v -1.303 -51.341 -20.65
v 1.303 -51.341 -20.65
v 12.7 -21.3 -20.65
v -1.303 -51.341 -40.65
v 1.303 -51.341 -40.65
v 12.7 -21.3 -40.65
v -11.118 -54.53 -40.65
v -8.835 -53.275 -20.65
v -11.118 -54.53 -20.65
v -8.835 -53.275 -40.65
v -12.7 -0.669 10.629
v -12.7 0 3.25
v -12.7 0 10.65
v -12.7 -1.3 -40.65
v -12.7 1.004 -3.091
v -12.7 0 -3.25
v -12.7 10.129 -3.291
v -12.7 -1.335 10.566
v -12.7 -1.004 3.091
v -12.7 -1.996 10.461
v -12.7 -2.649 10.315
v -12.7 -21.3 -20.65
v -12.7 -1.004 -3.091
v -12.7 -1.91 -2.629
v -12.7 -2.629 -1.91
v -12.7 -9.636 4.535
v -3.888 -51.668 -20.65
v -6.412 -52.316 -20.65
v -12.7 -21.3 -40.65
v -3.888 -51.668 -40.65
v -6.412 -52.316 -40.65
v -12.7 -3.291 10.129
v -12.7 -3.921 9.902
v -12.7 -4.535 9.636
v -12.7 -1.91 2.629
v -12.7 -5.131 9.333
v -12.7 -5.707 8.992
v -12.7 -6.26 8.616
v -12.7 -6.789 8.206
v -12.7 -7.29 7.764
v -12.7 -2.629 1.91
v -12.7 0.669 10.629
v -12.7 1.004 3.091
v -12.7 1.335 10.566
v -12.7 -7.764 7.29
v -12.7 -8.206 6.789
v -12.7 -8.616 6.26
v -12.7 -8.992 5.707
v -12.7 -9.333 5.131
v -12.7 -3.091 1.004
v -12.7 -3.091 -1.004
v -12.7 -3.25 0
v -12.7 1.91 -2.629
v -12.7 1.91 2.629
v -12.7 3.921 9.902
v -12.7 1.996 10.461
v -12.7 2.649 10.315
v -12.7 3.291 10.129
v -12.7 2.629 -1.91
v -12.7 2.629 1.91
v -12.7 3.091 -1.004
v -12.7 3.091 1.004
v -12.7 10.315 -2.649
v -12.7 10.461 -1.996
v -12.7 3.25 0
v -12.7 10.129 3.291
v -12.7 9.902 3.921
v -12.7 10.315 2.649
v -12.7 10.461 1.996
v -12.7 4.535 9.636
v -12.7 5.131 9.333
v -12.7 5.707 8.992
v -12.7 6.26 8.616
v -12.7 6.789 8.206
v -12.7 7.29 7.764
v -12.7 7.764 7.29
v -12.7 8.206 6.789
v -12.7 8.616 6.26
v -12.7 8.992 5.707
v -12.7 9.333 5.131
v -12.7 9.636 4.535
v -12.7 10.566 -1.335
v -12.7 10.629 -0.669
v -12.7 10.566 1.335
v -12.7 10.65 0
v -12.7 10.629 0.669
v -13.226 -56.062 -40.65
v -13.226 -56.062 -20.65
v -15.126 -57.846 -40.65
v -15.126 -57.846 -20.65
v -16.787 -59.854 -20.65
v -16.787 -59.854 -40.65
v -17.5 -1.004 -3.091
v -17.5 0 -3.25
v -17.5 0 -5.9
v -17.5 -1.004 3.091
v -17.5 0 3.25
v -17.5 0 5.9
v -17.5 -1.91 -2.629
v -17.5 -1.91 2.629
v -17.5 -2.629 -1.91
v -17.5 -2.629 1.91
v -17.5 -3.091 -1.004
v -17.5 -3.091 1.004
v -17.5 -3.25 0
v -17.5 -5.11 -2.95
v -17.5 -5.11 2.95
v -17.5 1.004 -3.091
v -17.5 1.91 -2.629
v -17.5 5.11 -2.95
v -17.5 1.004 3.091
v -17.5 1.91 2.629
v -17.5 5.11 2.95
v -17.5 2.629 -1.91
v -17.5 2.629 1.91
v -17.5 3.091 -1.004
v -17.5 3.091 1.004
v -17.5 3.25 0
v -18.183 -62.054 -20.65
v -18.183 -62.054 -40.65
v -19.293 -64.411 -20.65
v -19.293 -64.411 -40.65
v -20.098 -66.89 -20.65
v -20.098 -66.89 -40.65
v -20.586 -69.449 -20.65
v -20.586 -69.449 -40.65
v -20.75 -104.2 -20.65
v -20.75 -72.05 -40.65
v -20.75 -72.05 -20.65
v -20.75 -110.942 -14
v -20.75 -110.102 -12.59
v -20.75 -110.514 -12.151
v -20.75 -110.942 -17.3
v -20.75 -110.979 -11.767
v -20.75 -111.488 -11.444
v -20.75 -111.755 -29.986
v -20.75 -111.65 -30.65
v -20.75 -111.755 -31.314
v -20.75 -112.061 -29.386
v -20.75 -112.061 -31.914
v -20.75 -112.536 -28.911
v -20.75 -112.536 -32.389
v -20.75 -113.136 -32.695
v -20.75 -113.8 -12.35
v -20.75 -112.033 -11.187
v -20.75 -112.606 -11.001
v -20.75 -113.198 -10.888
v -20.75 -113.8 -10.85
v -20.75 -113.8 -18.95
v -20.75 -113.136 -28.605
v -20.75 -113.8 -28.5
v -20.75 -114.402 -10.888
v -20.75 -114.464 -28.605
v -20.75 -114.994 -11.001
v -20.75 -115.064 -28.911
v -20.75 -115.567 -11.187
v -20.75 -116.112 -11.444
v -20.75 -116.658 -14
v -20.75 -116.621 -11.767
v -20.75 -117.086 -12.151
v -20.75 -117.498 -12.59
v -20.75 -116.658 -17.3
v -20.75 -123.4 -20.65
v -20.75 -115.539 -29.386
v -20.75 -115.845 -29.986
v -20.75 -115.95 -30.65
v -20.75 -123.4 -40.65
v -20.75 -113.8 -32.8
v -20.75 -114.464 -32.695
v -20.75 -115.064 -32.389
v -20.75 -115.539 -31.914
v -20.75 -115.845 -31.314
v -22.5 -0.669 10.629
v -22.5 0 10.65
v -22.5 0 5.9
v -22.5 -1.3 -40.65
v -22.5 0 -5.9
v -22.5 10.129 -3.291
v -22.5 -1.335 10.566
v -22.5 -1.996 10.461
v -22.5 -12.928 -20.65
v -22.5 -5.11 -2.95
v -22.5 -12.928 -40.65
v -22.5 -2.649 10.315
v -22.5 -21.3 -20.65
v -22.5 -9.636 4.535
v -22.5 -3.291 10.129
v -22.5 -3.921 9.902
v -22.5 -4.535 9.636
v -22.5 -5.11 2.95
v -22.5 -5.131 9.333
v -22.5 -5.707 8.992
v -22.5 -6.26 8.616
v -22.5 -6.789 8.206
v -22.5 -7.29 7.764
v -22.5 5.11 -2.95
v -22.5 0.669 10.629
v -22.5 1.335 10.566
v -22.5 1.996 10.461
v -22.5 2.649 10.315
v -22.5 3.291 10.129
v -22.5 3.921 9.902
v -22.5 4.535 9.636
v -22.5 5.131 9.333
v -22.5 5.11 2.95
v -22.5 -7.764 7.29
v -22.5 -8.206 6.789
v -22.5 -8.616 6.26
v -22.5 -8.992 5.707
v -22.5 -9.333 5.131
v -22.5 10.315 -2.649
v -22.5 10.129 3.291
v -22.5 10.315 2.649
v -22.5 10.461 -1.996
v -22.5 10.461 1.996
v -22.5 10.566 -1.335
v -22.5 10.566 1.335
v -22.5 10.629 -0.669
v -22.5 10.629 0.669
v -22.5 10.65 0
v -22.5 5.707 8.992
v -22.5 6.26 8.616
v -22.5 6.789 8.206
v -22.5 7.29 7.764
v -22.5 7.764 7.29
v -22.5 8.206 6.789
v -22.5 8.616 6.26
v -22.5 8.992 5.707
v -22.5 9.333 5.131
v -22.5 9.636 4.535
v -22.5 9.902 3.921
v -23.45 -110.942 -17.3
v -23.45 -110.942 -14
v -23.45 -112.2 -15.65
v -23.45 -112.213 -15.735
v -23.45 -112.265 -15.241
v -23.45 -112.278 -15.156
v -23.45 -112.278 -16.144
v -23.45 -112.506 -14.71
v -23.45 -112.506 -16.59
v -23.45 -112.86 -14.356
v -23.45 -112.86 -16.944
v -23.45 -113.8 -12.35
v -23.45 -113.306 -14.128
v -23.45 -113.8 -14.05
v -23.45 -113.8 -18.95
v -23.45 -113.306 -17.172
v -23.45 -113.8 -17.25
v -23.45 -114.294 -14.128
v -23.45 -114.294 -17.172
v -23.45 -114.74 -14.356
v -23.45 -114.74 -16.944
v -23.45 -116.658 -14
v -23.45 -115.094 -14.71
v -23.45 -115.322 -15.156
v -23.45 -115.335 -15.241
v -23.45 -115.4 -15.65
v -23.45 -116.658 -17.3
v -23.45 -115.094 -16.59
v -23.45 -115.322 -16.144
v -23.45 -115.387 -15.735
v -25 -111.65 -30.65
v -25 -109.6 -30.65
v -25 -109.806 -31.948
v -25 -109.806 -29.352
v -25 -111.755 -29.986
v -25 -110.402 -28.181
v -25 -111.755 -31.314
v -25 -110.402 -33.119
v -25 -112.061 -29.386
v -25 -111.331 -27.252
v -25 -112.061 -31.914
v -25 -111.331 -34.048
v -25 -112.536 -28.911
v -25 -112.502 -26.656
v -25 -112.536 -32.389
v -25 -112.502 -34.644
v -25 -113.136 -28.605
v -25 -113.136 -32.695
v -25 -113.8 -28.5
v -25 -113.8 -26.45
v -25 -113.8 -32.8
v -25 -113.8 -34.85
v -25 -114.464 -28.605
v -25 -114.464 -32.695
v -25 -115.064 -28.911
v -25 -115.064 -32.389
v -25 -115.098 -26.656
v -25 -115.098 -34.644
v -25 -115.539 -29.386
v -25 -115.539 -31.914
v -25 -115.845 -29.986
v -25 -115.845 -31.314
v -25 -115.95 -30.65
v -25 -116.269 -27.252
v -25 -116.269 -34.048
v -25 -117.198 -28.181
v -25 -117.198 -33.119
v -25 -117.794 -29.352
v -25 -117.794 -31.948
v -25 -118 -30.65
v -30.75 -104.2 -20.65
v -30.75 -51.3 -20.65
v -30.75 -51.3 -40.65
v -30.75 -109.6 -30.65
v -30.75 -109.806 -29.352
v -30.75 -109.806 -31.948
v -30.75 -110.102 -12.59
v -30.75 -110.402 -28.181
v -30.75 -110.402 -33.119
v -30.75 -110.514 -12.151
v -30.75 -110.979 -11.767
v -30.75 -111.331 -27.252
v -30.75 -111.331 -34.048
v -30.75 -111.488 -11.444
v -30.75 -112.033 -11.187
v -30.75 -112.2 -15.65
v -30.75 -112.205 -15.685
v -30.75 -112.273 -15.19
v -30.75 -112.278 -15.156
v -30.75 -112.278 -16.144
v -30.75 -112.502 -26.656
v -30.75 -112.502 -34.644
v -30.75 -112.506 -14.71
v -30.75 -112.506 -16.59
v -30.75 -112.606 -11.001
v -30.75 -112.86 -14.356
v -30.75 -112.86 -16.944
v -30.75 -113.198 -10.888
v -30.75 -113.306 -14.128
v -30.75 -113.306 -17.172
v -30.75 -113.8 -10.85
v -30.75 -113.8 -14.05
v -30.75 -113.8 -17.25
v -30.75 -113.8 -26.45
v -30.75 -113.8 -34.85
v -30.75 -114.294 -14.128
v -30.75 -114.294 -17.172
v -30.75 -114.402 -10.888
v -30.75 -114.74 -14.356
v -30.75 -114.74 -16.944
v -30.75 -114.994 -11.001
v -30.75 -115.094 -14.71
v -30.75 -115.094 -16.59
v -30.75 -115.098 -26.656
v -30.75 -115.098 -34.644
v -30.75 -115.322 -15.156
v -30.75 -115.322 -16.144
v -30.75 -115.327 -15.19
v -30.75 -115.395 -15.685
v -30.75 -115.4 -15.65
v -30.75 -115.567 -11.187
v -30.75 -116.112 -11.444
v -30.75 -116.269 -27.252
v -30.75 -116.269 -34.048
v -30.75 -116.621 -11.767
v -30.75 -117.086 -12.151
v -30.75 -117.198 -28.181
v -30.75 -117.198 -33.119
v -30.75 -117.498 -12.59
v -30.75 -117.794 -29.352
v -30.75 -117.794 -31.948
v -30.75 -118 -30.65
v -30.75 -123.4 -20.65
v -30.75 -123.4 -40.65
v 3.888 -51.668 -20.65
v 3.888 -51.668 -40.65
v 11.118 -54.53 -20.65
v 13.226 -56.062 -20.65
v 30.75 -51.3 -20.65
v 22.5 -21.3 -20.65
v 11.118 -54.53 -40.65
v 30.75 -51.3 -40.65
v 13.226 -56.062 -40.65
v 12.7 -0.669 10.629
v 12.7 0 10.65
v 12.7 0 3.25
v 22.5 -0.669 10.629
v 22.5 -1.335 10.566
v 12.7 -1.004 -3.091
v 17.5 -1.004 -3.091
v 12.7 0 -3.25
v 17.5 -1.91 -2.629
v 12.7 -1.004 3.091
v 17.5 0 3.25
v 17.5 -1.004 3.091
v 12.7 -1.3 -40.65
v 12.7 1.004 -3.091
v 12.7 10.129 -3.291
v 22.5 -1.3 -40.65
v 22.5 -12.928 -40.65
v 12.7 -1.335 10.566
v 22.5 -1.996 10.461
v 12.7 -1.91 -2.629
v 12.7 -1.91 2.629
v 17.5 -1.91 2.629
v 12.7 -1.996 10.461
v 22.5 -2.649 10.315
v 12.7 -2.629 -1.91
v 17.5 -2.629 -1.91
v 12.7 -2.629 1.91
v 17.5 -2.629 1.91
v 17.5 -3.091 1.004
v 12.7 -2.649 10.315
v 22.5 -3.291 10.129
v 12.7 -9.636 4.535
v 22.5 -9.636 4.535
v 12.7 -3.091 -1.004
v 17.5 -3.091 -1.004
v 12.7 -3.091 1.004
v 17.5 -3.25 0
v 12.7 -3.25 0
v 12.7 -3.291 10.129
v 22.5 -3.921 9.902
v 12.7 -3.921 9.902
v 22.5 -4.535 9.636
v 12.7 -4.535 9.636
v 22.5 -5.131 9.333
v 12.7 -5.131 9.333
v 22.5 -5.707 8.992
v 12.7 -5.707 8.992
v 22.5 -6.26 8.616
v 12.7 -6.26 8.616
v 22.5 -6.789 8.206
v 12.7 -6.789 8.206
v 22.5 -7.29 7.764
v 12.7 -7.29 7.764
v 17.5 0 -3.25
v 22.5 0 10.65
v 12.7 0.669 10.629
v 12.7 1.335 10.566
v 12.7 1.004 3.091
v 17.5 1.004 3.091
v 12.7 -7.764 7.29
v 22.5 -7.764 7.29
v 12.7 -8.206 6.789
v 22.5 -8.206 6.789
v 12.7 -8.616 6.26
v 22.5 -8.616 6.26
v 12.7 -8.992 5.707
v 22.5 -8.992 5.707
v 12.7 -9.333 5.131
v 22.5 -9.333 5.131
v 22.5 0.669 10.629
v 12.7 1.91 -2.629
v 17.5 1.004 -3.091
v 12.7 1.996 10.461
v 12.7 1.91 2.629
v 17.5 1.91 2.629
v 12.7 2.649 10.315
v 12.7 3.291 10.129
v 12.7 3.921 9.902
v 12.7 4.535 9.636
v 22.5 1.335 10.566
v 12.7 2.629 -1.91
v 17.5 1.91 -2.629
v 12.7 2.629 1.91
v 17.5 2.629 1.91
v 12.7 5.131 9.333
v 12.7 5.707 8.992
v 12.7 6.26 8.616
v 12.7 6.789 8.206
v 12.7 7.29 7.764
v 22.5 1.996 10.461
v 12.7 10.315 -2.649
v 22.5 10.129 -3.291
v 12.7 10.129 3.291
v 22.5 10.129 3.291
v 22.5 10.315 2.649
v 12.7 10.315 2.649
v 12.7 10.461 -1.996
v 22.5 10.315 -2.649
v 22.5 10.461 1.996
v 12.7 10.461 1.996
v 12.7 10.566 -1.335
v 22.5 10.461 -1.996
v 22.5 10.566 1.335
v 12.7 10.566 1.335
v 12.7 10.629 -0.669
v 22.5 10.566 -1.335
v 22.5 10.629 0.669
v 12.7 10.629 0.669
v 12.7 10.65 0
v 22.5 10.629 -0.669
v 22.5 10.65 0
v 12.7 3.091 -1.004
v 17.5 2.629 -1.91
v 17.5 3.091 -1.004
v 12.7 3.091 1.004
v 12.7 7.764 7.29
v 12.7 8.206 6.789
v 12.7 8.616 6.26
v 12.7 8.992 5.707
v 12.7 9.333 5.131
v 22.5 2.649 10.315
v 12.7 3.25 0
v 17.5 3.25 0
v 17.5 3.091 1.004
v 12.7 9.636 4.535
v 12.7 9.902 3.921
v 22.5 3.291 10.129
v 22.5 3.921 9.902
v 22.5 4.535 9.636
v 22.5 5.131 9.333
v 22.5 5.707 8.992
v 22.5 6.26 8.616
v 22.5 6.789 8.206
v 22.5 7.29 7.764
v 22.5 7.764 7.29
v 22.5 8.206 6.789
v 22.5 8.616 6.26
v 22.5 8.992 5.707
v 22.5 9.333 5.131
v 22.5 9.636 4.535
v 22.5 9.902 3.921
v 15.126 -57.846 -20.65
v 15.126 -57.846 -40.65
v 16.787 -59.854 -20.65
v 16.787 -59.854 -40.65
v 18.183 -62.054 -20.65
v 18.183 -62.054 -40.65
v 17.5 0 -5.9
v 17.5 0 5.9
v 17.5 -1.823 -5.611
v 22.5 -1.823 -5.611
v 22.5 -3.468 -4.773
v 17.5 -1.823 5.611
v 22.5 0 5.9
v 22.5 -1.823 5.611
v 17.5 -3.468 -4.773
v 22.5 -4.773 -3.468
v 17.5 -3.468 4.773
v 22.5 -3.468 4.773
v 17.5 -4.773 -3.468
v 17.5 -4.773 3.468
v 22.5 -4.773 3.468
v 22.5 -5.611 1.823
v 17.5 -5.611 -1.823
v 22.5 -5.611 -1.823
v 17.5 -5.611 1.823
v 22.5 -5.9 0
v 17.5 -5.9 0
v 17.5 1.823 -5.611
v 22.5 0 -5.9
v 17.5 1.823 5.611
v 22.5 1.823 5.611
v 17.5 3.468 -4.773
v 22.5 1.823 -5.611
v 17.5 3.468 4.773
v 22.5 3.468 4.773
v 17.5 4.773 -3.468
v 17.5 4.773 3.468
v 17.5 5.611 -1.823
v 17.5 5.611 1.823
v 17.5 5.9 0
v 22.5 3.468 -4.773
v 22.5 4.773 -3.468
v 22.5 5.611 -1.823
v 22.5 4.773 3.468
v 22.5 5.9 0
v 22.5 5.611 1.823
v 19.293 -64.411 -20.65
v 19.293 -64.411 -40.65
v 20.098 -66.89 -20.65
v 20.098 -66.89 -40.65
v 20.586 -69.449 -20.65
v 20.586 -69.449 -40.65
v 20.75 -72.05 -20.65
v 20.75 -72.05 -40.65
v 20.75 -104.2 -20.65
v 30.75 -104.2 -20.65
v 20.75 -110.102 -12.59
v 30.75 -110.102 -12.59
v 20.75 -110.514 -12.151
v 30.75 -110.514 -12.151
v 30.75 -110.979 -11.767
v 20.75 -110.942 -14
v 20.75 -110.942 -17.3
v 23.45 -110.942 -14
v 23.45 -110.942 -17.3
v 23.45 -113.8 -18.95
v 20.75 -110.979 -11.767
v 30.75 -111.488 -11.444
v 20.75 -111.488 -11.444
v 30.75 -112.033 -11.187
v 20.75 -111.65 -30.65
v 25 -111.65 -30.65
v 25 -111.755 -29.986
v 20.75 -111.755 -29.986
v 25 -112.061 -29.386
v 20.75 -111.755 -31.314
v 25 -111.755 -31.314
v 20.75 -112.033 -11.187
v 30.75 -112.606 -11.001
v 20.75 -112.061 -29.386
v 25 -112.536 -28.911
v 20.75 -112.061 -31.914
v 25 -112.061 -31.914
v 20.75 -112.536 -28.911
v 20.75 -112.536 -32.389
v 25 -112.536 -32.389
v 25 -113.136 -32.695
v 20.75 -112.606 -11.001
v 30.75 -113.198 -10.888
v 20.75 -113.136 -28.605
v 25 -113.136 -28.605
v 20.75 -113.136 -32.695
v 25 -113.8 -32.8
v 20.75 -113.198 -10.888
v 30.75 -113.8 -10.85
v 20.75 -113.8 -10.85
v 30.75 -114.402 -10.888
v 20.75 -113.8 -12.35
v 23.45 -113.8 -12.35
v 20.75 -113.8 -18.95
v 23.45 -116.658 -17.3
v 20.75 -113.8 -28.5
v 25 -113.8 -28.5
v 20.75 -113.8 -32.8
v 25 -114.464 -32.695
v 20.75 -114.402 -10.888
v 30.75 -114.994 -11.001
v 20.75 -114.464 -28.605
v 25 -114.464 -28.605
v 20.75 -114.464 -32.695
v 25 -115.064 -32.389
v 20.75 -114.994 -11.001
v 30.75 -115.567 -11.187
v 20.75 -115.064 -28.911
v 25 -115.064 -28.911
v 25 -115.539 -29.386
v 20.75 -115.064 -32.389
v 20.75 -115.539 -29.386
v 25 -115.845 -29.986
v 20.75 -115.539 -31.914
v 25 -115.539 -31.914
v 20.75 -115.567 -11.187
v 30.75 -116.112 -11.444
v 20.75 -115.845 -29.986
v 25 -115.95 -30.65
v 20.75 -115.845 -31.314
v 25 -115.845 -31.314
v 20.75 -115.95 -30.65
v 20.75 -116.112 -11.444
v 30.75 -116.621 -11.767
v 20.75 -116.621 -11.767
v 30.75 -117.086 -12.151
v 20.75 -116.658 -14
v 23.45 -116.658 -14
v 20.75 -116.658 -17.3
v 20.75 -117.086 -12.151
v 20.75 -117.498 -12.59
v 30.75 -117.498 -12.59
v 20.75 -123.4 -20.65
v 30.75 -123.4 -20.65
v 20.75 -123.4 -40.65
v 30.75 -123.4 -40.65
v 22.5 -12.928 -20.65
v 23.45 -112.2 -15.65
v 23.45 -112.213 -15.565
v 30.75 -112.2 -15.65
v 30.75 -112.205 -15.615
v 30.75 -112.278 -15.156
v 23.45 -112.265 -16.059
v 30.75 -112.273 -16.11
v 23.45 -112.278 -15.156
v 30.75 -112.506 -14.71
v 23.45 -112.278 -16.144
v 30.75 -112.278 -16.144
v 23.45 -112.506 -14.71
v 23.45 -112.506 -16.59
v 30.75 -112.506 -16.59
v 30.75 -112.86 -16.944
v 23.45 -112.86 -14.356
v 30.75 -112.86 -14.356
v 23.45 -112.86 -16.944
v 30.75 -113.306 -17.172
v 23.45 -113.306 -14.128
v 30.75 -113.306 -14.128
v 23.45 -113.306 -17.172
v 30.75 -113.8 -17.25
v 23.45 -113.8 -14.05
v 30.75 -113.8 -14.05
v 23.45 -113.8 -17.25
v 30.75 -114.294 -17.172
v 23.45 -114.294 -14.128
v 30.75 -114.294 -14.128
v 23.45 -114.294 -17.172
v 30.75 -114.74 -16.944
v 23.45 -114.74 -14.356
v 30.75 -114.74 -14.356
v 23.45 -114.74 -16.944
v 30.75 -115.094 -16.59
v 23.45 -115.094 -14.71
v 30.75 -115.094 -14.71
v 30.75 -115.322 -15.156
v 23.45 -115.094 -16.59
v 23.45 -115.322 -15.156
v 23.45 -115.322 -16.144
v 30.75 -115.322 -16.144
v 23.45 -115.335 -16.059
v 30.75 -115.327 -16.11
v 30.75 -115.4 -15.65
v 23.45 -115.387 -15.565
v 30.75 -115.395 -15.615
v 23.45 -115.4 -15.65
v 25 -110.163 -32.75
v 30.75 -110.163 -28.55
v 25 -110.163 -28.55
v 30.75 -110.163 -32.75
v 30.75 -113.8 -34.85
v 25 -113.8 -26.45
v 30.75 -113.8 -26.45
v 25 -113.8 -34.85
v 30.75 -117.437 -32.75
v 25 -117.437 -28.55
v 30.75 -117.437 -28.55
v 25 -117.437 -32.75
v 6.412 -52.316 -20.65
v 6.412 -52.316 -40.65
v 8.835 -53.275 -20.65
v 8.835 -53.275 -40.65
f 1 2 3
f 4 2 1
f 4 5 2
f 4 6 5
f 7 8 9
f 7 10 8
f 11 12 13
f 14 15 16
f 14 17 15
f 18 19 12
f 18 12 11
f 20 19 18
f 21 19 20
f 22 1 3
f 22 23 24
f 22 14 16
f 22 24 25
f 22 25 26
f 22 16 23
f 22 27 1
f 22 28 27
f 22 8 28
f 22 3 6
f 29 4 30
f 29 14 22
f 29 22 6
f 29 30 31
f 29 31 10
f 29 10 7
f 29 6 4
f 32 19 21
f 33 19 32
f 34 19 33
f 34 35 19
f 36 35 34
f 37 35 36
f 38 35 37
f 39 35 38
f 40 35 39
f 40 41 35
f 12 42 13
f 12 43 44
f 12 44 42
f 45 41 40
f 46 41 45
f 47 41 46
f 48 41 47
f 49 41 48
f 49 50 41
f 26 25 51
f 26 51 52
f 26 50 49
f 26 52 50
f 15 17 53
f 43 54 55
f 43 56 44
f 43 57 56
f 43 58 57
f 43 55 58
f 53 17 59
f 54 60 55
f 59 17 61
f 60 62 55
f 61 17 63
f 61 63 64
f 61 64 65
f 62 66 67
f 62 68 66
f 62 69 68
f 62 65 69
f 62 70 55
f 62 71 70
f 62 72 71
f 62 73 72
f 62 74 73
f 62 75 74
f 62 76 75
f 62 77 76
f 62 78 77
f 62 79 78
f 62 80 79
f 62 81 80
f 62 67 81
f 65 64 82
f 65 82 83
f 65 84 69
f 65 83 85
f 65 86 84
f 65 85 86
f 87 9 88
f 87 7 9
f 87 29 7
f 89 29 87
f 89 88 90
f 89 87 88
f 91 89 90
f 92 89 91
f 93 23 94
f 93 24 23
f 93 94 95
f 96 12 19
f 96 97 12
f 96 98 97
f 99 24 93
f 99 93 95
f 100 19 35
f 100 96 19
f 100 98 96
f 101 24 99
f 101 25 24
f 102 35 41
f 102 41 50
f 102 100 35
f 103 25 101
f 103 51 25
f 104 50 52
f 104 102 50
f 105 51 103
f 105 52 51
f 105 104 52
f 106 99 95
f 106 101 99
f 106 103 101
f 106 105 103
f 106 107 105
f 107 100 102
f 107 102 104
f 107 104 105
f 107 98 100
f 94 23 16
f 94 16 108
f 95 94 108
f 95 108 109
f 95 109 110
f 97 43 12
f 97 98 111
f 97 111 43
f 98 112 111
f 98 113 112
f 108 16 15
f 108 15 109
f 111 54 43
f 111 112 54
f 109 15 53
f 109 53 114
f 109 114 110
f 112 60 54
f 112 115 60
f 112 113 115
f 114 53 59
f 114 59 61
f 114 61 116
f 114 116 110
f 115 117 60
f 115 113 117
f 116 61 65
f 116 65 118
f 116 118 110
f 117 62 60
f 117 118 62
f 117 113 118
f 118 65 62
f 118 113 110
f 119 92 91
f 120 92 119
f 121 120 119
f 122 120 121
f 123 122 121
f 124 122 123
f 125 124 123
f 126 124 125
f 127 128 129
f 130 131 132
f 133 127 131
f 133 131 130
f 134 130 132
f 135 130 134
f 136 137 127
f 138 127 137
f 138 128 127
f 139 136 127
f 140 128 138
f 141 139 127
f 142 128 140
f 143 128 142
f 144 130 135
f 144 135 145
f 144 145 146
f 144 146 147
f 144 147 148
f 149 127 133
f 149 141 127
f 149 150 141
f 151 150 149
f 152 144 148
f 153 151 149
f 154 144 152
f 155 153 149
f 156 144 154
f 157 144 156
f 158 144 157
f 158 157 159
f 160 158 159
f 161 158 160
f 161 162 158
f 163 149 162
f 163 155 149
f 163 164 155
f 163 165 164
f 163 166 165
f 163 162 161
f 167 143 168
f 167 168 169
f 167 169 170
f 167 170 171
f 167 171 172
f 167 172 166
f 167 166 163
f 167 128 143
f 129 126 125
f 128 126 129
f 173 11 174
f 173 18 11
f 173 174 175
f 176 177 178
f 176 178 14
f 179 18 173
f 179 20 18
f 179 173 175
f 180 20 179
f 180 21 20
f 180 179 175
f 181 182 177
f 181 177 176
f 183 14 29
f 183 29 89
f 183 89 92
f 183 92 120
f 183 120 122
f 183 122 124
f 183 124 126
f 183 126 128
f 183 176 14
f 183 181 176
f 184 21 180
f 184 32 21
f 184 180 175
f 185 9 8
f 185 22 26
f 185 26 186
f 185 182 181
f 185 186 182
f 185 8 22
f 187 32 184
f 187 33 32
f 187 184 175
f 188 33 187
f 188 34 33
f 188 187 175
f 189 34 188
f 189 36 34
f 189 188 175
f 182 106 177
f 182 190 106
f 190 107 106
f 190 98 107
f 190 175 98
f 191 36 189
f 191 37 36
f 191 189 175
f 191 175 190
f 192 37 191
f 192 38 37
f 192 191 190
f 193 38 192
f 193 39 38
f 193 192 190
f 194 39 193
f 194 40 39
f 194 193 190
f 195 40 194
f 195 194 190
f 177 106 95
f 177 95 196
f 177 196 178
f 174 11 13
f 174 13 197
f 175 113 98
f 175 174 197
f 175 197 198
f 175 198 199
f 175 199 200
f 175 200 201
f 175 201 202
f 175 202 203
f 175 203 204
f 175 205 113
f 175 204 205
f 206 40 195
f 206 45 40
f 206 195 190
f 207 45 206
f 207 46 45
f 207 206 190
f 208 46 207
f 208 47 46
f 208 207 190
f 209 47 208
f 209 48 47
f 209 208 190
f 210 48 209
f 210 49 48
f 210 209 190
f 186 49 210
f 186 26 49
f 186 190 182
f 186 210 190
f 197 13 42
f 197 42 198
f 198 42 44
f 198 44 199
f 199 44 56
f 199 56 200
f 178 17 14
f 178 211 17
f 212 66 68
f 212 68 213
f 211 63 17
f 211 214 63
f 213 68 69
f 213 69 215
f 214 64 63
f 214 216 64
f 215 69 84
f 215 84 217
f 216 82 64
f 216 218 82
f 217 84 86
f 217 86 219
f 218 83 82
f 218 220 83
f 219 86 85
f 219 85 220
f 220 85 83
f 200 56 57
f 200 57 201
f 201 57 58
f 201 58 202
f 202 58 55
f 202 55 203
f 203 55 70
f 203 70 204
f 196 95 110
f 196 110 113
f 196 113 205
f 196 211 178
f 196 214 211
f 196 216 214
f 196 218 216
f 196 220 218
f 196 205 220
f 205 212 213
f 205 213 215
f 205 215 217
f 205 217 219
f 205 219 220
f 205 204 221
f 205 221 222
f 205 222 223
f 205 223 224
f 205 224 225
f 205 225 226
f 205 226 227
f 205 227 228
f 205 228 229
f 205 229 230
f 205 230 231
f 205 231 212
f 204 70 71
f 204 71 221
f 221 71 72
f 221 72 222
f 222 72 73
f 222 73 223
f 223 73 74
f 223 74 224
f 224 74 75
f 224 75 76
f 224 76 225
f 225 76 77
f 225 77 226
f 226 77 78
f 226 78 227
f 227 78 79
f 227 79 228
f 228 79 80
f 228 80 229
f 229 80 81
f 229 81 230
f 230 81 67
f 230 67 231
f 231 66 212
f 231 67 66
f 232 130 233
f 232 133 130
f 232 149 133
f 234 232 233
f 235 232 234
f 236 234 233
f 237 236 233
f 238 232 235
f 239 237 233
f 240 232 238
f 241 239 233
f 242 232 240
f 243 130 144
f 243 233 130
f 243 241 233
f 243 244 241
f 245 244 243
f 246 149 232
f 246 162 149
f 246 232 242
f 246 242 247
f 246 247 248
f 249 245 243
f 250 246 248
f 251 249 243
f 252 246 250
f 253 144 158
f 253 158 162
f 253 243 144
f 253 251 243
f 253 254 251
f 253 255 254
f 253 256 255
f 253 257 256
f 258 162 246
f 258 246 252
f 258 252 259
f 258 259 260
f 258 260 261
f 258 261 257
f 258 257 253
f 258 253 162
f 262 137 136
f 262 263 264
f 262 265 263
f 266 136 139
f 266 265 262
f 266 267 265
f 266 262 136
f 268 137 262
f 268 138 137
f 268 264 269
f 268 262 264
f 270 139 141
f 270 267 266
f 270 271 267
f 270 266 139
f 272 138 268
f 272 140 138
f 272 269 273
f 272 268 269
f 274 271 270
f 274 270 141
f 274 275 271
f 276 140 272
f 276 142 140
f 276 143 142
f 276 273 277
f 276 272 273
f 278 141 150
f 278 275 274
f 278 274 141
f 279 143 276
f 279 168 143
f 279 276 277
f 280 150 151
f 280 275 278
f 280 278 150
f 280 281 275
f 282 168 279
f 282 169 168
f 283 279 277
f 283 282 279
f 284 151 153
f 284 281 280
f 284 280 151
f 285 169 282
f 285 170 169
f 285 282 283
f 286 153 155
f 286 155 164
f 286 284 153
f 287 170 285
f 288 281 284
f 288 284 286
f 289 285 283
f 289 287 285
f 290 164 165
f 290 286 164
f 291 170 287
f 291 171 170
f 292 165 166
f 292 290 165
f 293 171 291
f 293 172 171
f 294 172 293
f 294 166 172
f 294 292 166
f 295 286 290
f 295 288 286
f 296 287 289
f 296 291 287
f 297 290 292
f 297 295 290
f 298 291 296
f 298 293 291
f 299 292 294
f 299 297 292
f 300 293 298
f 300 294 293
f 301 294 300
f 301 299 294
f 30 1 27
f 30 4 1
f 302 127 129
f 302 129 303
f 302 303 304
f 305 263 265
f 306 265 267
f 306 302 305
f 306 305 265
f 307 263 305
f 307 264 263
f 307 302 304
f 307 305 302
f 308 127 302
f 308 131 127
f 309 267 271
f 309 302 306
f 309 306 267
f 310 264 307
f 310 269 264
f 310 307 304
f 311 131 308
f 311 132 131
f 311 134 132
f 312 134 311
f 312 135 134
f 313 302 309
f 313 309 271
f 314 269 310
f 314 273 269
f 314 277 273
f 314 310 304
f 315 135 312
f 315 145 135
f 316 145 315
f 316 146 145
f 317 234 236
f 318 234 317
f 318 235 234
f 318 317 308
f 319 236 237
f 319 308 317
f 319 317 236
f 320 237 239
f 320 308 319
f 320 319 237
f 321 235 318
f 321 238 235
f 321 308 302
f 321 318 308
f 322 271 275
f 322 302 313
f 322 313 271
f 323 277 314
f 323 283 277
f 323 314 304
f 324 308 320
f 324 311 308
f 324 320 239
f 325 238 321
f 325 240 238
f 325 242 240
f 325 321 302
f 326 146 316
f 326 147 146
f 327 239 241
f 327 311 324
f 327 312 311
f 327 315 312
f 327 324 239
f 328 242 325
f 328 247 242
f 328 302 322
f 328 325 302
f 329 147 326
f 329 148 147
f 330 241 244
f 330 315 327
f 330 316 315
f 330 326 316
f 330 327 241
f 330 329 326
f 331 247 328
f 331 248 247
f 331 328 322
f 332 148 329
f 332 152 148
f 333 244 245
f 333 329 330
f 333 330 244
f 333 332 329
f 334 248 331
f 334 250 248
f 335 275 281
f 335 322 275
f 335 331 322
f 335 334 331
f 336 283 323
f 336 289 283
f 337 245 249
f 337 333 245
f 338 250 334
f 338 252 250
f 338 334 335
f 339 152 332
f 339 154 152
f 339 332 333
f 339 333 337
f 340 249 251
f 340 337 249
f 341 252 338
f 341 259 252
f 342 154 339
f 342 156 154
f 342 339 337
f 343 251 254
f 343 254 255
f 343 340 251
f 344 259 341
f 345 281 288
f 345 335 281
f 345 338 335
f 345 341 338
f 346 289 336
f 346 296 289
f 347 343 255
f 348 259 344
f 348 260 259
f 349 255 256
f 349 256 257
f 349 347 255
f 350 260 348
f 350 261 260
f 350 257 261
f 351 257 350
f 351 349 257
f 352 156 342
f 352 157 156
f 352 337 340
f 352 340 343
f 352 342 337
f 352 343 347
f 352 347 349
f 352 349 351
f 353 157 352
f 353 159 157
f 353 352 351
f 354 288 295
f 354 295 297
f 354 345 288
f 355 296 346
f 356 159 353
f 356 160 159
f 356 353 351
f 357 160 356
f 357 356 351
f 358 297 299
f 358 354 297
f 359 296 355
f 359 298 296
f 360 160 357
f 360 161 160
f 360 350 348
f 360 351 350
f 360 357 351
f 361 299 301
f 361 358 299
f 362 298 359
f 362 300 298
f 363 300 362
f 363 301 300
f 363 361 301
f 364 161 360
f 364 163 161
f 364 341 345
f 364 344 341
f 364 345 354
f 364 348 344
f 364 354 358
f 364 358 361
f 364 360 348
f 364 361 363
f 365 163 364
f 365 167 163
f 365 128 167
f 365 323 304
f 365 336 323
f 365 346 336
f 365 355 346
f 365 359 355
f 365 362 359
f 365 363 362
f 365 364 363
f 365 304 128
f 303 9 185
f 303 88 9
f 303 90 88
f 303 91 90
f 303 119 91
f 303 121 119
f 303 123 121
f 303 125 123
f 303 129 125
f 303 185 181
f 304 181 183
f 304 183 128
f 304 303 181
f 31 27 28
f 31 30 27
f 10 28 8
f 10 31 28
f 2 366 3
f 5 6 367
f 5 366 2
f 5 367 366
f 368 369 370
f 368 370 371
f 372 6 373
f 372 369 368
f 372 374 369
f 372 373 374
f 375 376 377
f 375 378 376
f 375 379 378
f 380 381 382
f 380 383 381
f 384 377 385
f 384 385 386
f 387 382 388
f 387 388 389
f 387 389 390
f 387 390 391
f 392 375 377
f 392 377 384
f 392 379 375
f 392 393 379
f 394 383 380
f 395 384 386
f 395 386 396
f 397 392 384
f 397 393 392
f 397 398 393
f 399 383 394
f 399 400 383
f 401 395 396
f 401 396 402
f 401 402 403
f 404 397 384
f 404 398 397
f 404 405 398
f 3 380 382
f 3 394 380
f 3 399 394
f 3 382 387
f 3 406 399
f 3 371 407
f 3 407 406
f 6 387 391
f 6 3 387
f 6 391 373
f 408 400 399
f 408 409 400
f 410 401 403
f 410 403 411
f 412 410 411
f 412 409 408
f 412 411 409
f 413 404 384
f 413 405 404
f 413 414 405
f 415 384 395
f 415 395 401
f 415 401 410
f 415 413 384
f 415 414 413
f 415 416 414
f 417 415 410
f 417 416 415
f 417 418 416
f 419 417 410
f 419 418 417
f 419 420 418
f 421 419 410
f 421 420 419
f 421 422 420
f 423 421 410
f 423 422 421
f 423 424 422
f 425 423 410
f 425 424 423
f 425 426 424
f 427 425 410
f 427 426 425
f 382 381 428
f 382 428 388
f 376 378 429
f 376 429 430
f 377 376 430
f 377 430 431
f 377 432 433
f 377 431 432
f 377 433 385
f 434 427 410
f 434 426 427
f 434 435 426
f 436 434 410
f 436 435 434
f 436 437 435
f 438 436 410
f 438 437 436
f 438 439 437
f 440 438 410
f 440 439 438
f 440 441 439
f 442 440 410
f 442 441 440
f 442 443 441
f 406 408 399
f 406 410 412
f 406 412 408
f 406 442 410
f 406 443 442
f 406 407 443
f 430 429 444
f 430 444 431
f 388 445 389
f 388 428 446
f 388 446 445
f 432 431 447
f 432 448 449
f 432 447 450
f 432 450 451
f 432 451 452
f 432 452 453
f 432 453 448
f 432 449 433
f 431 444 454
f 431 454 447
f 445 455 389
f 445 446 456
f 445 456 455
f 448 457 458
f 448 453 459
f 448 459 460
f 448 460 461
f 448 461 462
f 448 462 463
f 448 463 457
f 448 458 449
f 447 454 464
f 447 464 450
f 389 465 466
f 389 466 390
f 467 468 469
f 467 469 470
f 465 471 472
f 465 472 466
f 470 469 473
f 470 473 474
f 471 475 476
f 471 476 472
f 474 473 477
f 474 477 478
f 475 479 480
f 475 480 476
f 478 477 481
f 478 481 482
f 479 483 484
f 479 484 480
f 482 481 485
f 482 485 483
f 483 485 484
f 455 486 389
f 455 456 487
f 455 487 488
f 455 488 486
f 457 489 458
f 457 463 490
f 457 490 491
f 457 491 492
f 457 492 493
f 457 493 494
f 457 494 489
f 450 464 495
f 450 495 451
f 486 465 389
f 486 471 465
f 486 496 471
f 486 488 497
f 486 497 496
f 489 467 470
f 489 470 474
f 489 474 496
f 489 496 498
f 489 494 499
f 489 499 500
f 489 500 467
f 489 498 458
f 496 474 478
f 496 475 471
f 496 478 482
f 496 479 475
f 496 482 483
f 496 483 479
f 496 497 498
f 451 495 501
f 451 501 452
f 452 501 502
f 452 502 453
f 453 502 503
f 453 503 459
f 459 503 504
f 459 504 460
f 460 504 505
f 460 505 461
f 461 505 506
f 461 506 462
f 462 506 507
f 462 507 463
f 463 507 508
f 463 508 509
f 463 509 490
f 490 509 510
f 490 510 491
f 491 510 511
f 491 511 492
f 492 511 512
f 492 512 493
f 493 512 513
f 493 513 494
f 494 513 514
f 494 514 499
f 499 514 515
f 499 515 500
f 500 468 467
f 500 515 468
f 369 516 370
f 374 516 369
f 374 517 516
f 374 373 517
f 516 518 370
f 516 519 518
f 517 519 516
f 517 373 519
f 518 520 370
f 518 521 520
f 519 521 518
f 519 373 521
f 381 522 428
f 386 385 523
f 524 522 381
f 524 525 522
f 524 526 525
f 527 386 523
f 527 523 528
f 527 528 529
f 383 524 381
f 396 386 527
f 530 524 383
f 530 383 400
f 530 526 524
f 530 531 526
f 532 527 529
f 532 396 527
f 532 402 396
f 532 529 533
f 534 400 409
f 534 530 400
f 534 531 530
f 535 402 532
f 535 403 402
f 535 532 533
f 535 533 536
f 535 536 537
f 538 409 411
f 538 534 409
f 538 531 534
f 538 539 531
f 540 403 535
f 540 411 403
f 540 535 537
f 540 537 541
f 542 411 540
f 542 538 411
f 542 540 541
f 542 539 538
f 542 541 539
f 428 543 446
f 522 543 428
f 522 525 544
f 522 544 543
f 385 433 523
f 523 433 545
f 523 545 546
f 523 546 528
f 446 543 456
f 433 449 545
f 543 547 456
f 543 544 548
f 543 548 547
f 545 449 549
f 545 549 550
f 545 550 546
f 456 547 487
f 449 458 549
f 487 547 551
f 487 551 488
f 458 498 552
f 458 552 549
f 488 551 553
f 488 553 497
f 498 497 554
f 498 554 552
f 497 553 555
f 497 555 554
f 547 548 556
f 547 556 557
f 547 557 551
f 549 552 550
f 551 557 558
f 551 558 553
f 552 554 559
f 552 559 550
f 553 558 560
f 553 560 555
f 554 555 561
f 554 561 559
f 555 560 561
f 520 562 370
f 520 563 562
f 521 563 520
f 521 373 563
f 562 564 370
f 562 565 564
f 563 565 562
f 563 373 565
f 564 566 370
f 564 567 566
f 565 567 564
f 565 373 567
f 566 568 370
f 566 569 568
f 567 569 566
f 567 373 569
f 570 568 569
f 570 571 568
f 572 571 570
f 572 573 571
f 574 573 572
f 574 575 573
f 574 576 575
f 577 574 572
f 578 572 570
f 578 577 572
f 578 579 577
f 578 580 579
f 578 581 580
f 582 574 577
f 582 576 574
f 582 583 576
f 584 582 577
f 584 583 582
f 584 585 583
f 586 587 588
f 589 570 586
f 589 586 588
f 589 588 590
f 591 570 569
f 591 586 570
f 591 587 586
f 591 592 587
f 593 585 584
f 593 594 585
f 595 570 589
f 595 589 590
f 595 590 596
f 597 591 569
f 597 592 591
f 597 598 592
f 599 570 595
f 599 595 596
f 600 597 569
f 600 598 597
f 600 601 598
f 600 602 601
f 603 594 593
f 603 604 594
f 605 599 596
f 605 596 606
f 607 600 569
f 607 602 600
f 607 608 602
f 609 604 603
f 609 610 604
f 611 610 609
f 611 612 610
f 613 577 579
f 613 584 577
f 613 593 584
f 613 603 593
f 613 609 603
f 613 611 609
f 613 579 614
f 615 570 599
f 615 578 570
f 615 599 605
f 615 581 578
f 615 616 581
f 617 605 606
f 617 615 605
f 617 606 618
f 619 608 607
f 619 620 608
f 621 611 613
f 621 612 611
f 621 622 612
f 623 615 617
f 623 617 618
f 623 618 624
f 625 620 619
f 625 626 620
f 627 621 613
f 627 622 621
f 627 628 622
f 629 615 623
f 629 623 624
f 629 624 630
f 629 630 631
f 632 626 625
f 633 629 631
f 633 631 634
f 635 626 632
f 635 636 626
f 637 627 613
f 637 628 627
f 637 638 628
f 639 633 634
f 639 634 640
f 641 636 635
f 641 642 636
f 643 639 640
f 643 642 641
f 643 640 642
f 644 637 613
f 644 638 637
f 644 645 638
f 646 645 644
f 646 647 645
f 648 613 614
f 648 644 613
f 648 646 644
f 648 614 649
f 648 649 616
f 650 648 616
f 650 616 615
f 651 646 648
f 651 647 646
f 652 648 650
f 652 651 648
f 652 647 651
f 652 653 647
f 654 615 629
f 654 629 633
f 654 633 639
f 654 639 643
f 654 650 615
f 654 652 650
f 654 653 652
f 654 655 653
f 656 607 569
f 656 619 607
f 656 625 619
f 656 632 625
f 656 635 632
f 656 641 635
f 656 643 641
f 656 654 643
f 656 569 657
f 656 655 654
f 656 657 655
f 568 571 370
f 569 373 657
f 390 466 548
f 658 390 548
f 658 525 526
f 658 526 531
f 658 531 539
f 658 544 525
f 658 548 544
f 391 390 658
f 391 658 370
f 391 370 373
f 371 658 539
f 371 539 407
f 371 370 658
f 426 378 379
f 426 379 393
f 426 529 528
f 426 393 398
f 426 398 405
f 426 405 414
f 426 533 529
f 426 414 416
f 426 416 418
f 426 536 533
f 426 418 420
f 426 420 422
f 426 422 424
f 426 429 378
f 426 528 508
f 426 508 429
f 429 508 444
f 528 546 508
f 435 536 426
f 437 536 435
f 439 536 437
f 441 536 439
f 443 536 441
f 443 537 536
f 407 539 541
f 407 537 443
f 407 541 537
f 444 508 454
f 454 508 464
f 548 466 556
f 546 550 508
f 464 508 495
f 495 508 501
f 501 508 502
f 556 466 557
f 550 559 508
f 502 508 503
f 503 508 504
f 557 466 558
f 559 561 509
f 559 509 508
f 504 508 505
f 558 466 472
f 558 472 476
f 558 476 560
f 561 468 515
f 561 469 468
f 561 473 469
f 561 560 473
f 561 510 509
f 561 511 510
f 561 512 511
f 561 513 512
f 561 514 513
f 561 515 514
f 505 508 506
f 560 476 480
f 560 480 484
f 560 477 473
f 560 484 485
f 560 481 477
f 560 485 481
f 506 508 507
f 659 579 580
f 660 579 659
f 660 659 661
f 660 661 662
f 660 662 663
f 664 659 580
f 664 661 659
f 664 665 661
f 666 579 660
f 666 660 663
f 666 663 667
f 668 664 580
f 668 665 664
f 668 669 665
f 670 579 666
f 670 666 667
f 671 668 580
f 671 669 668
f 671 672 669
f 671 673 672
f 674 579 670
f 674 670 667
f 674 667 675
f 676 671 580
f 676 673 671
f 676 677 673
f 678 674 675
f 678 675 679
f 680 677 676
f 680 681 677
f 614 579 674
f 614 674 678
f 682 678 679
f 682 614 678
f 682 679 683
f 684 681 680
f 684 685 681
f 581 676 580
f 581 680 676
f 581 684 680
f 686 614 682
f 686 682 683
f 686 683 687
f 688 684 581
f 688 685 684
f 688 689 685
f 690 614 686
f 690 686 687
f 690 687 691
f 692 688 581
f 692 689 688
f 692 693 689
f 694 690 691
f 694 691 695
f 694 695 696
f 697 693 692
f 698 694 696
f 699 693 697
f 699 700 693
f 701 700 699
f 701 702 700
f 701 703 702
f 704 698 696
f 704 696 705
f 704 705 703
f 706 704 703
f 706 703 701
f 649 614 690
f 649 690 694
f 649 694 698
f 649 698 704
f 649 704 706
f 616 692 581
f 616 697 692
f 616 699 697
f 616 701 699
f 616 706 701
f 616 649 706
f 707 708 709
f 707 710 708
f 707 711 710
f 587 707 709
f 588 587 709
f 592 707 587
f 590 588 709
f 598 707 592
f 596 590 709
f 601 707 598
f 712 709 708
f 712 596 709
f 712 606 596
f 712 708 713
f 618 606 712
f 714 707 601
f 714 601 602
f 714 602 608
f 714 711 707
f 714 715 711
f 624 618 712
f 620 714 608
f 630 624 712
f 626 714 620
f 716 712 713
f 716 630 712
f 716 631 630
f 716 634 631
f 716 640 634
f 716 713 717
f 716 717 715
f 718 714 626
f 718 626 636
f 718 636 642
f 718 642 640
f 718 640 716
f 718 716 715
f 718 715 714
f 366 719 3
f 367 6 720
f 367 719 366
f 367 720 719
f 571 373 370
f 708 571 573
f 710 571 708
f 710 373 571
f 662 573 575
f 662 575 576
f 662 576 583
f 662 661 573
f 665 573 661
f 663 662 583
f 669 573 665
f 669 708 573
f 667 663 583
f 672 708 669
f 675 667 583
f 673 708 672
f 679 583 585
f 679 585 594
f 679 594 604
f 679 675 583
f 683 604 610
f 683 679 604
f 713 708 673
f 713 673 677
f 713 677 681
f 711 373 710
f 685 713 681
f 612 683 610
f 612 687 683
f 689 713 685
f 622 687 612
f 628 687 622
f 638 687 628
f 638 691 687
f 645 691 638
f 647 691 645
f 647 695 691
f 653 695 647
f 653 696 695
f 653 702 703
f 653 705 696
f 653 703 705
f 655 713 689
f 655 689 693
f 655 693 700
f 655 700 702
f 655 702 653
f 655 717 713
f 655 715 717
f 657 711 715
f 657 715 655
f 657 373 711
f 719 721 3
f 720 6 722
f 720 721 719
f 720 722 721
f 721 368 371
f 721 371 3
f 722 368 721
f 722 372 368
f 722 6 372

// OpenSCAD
//========== VIDLICE TVARU H ==========//

include <../parameters.scad>


wheel_screw_diameter = M4_screw_diameter;
wheel_nut_diameter = M4_nut_diameter;
wheel_nut_height = M4_nut_height;
wheel_screw_head_height = M4_nut_height;
wheel_screw_head_diameter = M4_nut_diameter;

wheel_tolerance = 15;
888_2022_wheel_diameter = wheel_diameter+wheel_tolerance;
lifting_size = 10;

height = 20;
connector_width = 30;
wheel_screw_overhang = 8;

module 888_2022(wheel=false) {
    translate([0, -(connector_width+material_around_bearing*2+696_bearing_outer_diameter), height/-2-material_around_bearing-696_bearing_outer_diameter/2-lifting_size]) {
    if(wheel) {
        union() {
            translate([-fork_wheel_width*1/3/2, -888_2022_wheel_diameter/2, 0])
                rotate([0, -90, 0])
                    cylinder(d2=wheel_diameter-30, d1=wheel_diameter, h=fork_wheel_width*1/3, $fn=20);
            translate([fork_wheel_width*1/3/2, -888_2022_wheel_diameter/2, 0])
                rotate([0, 90, 0])
                    cylinder(d2=wheel_diameter-30, d1=wheel_diameter, h=fork_wheel_width*1/3, $fn=20);
            translate([0, -888_2022_wheel_diameter/2, 0])
                rotate([0, 90, 0])
                    cylinder(d=wheel_diameter, h=fork_wheel_width*1/3, center=true, $fn=20);
        }
    }


    difference() {
        union() {
            translate([-chasis_fork_thickness-fork_wheel_width/2, -888_2022_wheel_diameter/2-wheel_screw_overhang, -height/2])
                hull(){
                    cube([chasis_fork_thickness*2+fork_wheel_width, 888_2022_wheel_diameter/2+wheel_screw_overhang, height]);

                    translate([-chasis_fork_thickness + fork_wheel_width/2 , 0, 0])
                        cube([chasis_fork_thickness*4, 888_2022_wheel_diameter/2+wheel_screw_overhang+connector_width+20, height]);
                }

            hull() {
                translate([-chasis_fork_thickness-joint_width/2, connector_width, -height/2])
                    cube([chasis_fork_thickness*2+joint_width, 20, height]);

                translate([0, connector_width+material_around_bearing*2+696_bearing_outer_diameter, height/2+696_bearing_outer_diameter/2+material_around_bearing+lifting_size])
                    rotate([0, 90, 0])
                        cylinder(d=696_bearing_outer_diameter+material_around_bearing*2, h=chasis_fork_thickness*2+joint_width, $fn=100, center=true);
            }

            hull() {
                translate([0, -888_2022_wheel_diameter/2, 0])
                    cube([chasis_fork_thickness*2+fork_wheel_width, (M3_nut_diameter+3)*2, height], center=true);

                translate([0, -888_2022_wheel_diameter/2, screw_spring_distance])
                    rotate([0, 90, 0])
                        cylinder(d=M3_nut_diameter+3, h=chasis_fork_thickness*2+fork_wheel_width, $fn=50, center=true);
            }
        }

        //kolo
        translate([0, -888_2022_wheel_diameter/2-fork_wheel_width/2, 0])
            cube([fork_wheel_width, 888_2022_wheel_diameter, 888_2022_wheel_diameter], center=true);

        //kolo
        translate([0, -fork_wheel_width/2, 0])
            cylinder(d=fork_wheel_width, h=height*2, $fn=50, center=true);

        //uchycení
        translate([-joint_width/2-0.2, connector_width, -height*5])
            cube([joint_width+0.4, 300, height*10]);

        //šroub u kola
        translate([0, -888_2022_wheel_diameter/2, 0])
            rotate([0, 90, 0])
                cylinder(d=wheel_screw_diameter, h=chasis_fork_thickness*2+fork_wheel_width+10, center=true, $fn=20);

        //matka šroubu u kola
        translate([50/2, -888_2022_wheel_diameter/2, 0])
            rotate([0, 90, 0])
                cylinder(d=wheel_nut_diameter, h=10+0.1, $fn=6);

        //hlavička šroubu u kola
        translate([-50/2, -888_2022_wheel_diameter/2, 0])
            rotate([0, -90, 0])
                cylinder(d=wheel_screw_head_diameter, h=10+0.1, $fn=20);

        //šroub pístu
        translate([0, -888_2022_wheel_diameter/2, screw_spring_distance])
            rotate([0, 90, 0])
                cylinder(d=M3_screw_diameter, h=chasis_fork_thickness*2+fork_wheel_width+10, center=true, $fn=20);

        //matka šroubu u pístu
        translate([0, -888_2022_wheel_diameter/2, screw_spring_distance])
            rotate([0, 90, 0])
                cylinder(d=M3_nut_diameter, h=M3_nut_height*2+fork_wheel_width, center=true, $fn=6);

        //šroub uchycení
        translate([0, connector_width+material_around_bearing*2+696_bearing_outer_diameter, height/2+696_bearing_outer_diameter/2+material_around_bearing+lifting_size])
            rotate([0, 90, 0])
                cylinder(d=M6_screw_diameter, h=chasis_fork_thickness*2+fork_wheel_width+10, $fn=20, center=true);

        translate([0, connector_width+material_around_bearing*2+696_bearing_outer_diameter, height/2+696_bearing_outer_diameter/2+material_around_bearing+lifting_size])
            rotate([0, 90, 0])
                translate([0, 0, chasis_fork_thickness+joint_width/2-5])
                    cylinder(d=M6_nut_diameter, h=10, $fn=20);

        translate([0, connector_width+material_around_bearing*2+696_bearing_outer_diameter, height/2+696_bearing_outer_diameter/2+material_around_bearing+lifting_size])
            rotate([0, 90, 0])
                translate([0, 0, -(chasis_fork_thickness+joint_width/2)-5])
                    cylinder(d=M6_nut_diameter, h=10, $fn=6);


    }
    }
}

888_2022(false);
